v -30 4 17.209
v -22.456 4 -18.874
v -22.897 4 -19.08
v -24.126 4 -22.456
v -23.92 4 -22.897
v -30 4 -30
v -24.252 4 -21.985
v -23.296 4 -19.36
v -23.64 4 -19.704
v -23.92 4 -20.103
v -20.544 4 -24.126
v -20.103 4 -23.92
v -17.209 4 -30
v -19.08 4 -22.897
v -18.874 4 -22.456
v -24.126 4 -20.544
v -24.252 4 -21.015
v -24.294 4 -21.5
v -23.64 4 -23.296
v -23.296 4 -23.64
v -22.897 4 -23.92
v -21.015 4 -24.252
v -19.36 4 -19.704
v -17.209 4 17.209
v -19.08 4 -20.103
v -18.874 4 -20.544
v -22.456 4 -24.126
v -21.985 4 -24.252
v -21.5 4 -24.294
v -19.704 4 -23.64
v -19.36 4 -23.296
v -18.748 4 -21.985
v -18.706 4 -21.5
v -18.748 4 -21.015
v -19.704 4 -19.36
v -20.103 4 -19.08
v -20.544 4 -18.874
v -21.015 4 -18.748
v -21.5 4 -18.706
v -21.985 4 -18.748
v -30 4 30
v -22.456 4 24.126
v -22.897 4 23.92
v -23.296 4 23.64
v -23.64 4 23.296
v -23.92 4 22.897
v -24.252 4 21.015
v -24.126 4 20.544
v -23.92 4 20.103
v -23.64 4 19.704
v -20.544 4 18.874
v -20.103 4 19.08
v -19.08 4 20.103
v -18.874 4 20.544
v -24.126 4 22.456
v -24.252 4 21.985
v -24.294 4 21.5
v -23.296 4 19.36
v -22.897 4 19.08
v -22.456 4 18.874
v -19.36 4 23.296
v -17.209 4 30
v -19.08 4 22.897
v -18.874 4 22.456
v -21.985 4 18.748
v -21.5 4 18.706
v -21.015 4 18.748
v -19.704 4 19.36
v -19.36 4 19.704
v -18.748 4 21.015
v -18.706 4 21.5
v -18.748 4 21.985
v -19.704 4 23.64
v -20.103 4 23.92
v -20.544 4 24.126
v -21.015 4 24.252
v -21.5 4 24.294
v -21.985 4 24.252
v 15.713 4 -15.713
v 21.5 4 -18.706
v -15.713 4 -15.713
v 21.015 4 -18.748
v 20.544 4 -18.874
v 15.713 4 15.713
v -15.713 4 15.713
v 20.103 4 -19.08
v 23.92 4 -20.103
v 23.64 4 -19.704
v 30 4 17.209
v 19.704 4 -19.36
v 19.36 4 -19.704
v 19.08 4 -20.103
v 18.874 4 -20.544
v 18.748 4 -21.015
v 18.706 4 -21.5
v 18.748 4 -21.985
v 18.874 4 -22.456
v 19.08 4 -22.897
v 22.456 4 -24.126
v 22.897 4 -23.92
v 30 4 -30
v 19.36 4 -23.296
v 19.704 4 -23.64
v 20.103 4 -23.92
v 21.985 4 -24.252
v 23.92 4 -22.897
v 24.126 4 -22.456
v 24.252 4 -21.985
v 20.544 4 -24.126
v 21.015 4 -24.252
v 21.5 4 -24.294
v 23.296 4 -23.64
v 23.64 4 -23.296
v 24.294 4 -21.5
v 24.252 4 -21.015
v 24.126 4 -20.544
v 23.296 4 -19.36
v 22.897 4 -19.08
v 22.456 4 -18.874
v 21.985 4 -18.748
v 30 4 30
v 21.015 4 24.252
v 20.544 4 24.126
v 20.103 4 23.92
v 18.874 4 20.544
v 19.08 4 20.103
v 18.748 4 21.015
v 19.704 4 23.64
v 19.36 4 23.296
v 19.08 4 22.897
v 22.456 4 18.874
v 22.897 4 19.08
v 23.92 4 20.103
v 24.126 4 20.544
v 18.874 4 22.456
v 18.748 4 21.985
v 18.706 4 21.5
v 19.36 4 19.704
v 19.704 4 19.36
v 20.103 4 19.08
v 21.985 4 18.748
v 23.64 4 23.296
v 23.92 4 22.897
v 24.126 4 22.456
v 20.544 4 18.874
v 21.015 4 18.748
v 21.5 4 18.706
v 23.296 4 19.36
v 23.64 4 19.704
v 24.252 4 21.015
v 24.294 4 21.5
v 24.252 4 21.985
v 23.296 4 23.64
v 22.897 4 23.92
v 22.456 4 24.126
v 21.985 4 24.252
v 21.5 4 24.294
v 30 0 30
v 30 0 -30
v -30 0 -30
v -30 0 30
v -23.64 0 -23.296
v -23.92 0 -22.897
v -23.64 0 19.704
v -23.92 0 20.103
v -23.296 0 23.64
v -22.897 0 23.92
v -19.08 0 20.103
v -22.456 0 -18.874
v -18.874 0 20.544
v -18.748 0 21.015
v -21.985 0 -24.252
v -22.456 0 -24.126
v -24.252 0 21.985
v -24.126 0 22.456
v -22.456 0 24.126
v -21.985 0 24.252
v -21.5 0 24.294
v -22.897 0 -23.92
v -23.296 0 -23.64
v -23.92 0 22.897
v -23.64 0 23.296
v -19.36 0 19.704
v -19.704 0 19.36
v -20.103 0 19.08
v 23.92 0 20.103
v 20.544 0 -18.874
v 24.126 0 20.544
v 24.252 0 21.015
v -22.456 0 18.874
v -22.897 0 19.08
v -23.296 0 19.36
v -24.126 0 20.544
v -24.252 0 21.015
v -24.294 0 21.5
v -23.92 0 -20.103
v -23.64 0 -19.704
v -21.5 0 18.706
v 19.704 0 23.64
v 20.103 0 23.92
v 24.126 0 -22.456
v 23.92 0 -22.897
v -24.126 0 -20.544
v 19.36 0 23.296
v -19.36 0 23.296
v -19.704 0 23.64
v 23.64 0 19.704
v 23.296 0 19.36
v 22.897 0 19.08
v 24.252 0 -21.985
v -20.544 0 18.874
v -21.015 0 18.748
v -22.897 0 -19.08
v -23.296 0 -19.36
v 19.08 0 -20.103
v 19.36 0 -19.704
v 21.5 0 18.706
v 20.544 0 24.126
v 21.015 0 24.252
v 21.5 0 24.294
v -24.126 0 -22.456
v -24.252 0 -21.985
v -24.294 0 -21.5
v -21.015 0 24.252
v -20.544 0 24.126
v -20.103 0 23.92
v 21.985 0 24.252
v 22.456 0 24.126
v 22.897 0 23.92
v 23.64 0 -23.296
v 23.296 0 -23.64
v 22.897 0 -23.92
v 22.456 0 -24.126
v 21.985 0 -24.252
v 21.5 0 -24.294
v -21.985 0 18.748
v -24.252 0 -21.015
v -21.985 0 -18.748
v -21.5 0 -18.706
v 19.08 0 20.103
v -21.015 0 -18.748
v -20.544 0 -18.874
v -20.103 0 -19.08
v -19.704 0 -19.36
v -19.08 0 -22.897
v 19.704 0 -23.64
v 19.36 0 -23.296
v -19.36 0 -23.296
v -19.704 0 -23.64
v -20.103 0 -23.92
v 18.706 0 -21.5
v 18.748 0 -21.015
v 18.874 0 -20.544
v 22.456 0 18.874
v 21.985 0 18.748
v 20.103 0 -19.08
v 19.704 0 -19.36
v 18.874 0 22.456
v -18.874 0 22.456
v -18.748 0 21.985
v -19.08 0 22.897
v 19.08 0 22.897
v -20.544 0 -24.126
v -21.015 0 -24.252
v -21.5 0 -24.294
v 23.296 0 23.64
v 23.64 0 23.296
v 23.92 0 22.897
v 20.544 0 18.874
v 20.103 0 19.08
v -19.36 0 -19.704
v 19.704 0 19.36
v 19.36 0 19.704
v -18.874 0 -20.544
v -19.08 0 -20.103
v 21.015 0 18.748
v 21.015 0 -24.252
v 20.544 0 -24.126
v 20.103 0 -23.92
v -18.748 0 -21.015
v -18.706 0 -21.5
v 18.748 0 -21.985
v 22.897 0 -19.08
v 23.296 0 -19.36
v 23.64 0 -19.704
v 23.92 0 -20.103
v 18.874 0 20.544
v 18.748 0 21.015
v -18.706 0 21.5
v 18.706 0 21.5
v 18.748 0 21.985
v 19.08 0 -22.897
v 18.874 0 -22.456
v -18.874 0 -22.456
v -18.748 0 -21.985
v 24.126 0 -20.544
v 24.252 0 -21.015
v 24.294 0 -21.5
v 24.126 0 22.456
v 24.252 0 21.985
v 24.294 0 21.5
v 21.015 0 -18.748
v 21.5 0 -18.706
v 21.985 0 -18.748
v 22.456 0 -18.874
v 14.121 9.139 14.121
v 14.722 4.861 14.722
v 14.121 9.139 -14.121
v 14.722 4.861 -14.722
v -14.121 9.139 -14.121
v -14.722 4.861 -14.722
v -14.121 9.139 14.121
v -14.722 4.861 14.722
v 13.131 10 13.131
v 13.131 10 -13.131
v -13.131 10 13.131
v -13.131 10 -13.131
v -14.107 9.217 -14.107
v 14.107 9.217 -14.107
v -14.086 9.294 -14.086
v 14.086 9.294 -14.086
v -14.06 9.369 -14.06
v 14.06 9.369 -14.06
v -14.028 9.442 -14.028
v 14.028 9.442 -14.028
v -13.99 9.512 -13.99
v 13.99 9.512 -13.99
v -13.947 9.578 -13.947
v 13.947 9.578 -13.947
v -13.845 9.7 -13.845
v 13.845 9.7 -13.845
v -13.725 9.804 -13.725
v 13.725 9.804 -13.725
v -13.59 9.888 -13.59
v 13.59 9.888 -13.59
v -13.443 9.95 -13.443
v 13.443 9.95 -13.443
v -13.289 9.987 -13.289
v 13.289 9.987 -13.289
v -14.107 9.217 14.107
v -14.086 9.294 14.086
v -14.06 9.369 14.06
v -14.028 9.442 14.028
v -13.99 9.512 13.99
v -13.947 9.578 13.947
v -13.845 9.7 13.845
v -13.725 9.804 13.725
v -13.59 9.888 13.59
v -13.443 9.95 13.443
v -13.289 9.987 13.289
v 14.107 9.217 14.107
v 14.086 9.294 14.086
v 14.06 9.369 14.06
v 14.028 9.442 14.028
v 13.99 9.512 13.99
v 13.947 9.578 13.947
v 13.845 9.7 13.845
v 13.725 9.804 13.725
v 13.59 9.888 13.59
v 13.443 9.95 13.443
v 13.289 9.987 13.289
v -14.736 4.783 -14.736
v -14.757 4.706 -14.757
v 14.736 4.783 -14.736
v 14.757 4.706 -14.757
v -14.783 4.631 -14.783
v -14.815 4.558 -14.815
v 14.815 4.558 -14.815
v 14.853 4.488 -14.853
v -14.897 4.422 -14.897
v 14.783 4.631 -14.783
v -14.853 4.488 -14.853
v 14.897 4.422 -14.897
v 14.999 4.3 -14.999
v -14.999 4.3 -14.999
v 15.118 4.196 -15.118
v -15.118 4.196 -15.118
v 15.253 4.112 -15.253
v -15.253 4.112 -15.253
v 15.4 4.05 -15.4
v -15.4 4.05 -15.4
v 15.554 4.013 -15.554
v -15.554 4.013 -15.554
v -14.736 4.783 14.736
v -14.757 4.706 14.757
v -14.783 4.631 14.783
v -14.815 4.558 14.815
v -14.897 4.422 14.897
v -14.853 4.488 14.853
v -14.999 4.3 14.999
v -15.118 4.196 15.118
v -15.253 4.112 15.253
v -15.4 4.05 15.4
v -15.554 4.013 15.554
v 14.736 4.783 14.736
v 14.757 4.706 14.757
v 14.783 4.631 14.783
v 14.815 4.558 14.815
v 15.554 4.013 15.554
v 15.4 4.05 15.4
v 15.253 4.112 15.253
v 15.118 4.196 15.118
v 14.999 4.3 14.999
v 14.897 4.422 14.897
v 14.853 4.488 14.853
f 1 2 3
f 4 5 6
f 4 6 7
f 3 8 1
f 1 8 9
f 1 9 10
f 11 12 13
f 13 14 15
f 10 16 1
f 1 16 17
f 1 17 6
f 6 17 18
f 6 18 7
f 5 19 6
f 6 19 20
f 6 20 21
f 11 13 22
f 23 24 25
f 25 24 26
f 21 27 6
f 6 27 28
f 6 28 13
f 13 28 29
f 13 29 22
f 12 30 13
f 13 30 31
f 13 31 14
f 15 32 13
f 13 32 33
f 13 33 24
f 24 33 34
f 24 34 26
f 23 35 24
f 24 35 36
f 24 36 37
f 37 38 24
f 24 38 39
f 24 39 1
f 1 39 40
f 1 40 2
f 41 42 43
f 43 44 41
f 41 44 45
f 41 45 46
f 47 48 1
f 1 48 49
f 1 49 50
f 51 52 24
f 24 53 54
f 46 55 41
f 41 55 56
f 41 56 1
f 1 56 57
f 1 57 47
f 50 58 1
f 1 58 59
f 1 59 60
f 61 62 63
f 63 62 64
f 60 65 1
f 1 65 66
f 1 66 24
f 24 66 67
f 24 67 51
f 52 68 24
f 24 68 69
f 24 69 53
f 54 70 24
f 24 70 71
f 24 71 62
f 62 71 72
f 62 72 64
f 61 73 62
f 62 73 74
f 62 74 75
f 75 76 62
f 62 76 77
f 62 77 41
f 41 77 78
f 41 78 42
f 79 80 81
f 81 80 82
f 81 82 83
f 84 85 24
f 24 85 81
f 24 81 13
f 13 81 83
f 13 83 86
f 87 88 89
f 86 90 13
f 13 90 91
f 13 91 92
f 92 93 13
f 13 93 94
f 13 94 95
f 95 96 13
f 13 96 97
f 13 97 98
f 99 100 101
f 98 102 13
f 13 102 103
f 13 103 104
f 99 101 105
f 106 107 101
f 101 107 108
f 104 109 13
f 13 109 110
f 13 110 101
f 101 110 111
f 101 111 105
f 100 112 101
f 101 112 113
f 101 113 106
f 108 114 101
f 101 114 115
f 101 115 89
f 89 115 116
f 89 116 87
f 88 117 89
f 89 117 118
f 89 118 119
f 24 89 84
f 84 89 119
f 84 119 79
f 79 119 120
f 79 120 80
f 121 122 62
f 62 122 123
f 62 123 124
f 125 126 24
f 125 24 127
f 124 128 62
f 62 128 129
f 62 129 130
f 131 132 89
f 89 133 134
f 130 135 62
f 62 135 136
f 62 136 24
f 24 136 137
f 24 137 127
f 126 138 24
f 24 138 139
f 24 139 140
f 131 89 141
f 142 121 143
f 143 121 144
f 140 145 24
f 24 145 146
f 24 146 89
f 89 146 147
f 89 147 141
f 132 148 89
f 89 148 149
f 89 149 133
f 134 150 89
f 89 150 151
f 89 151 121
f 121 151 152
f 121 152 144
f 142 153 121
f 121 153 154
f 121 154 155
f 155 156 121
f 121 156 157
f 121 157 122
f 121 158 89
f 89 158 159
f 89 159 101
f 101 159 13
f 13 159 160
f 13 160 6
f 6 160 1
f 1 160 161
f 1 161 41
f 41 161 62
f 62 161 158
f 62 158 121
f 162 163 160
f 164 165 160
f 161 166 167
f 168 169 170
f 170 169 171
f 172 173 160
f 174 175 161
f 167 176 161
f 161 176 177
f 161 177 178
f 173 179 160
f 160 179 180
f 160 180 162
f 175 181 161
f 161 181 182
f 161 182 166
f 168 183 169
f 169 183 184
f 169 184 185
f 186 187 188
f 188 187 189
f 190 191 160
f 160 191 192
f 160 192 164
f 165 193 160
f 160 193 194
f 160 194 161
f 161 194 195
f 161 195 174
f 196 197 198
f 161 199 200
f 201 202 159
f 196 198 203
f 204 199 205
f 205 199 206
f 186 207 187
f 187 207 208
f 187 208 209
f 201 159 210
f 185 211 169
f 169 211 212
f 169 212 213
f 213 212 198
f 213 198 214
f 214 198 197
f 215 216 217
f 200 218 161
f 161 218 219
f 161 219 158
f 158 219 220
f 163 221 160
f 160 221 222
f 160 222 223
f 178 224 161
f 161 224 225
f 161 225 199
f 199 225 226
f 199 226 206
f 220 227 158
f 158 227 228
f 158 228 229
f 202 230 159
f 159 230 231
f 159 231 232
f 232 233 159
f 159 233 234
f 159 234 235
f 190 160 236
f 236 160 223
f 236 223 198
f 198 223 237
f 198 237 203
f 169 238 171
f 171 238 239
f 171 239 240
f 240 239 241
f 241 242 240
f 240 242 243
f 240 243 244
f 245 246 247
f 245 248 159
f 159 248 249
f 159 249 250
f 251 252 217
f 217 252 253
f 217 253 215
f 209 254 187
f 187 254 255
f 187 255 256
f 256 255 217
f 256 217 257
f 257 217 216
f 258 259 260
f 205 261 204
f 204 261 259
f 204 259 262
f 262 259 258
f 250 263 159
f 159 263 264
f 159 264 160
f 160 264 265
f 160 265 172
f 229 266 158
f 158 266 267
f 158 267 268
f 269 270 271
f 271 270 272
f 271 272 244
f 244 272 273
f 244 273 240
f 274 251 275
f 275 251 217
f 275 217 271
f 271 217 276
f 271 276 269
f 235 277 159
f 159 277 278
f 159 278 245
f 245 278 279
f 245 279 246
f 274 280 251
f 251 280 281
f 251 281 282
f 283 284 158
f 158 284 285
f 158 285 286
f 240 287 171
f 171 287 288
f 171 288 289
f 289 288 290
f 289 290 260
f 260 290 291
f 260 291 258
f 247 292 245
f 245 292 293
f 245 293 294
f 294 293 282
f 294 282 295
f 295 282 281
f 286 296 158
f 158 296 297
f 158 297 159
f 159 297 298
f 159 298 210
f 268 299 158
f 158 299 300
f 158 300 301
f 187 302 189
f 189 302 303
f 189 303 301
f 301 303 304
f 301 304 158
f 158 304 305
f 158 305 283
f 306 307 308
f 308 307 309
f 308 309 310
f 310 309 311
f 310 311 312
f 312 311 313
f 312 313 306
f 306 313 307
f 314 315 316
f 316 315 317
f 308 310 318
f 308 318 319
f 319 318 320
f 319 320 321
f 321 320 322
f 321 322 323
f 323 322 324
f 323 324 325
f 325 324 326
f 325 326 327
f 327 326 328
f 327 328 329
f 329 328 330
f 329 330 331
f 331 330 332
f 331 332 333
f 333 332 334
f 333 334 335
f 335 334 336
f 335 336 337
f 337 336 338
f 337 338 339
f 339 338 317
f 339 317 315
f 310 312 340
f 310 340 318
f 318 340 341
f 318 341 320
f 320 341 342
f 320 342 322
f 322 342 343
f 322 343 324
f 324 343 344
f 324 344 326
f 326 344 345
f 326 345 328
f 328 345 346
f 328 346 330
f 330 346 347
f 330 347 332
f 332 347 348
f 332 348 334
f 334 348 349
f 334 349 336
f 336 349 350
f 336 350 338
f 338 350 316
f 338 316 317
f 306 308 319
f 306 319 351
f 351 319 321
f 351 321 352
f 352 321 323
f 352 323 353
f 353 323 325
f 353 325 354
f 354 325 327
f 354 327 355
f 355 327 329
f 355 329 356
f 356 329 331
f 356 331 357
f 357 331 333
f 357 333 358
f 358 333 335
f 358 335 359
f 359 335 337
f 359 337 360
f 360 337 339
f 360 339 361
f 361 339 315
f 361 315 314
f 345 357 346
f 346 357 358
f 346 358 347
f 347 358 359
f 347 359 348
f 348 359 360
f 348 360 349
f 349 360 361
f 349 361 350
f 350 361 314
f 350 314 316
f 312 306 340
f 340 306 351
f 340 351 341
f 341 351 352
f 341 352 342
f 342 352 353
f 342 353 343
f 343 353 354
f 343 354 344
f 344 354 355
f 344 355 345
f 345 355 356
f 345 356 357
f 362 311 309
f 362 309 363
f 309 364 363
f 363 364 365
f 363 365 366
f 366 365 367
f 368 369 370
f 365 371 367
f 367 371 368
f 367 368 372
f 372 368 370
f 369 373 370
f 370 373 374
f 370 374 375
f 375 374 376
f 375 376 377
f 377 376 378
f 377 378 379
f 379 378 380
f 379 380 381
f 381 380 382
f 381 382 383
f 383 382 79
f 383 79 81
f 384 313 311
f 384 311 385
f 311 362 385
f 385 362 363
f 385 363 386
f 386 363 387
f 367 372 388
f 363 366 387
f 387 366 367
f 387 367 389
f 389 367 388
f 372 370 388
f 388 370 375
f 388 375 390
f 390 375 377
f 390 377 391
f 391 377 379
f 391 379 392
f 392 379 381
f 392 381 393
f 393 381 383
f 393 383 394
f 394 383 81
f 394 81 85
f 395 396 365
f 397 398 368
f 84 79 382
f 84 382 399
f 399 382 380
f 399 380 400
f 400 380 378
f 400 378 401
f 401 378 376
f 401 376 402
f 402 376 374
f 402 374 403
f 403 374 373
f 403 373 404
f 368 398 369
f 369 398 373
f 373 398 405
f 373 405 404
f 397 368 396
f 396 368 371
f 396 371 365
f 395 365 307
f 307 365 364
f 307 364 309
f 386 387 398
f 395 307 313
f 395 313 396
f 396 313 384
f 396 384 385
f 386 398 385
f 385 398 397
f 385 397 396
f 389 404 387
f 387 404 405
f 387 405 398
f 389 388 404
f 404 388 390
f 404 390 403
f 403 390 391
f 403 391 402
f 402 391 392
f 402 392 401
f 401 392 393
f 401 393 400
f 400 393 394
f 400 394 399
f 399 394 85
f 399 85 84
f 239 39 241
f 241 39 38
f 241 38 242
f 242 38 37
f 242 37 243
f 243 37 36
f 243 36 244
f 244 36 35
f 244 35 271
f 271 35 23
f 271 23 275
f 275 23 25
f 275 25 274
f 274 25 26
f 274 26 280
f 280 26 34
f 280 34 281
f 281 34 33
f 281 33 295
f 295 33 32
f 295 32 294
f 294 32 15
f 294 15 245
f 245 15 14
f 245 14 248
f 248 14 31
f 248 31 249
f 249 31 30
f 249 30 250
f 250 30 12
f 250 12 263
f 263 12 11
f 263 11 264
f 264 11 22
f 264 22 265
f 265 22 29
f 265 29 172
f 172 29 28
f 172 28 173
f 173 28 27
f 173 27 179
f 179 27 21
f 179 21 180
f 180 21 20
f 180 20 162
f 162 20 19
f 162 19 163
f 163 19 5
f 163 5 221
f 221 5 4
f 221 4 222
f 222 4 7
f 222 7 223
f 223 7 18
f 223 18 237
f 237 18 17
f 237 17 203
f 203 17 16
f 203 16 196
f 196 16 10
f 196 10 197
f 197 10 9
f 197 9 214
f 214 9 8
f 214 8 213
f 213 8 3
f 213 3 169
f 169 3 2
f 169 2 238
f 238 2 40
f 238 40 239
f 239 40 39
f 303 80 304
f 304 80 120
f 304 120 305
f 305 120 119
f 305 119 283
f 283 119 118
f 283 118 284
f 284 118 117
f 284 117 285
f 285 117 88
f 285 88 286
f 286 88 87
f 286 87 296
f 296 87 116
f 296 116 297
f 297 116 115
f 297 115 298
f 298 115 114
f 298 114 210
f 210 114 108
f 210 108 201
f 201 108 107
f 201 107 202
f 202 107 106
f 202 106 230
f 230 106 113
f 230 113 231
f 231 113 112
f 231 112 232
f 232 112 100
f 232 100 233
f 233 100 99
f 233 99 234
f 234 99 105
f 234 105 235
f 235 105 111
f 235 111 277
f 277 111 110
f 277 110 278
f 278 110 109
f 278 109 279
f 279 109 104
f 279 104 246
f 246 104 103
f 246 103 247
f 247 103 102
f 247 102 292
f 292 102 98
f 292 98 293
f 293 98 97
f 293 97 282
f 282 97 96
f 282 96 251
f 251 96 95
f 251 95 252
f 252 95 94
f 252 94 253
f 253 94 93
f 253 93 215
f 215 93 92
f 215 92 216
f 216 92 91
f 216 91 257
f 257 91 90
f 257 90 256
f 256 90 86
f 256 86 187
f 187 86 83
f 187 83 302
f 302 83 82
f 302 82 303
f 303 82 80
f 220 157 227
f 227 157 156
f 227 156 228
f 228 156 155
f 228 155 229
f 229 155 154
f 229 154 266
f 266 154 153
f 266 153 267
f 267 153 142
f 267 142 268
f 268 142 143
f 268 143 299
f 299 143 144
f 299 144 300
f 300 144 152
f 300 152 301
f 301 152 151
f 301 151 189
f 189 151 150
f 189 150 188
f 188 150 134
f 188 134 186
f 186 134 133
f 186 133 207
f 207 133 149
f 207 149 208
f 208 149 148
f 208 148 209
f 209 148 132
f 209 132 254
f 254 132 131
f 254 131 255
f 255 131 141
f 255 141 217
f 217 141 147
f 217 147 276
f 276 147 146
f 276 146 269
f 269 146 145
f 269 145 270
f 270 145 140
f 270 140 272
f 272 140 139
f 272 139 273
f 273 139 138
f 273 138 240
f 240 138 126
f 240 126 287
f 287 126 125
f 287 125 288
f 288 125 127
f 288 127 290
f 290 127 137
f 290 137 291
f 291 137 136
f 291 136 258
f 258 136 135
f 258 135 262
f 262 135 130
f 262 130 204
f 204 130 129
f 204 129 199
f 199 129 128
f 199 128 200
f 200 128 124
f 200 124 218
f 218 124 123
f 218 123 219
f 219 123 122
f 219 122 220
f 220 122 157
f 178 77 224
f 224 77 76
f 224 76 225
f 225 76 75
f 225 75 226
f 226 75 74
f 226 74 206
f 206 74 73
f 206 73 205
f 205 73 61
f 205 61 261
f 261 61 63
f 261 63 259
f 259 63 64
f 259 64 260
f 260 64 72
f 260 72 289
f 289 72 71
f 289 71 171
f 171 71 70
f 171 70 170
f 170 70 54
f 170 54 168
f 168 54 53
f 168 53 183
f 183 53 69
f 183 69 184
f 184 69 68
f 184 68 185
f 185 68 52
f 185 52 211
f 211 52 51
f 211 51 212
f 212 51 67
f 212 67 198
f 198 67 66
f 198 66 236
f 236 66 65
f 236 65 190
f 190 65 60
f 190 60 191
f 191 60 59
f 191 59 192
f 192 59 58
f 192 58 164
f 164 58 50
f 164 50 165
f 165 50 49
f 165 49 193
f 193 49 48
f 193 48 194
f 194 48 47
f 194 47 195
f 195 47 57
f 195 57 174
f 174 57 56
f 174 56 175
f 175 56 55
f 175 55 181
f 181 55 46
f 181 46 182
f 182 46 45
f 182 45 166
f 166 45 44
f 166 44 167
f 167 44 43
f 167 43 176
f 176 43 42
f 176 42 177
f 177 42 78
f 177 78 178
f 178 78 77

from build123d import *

# Parameters (mm, degrees)
SKETCH1_W           = 60
SKETCH1_H           = 60
BOSS_EXTRUDE1_DEPTH = 4
SKETCH2_W           = 28
SKETCH2_H           = 28
BOSS_EXTRUDE2_DEPTH = 6
DRAFT1_ANGLE        = 8
FILLET1_R           = 1
SKETCH3_R           = 2.794
CUT_EXTRUDE1_DEPTH  = 43.848570571


with BuildPart() as part:
    # Sketch1 → Boss-Extrude1 (new body)
    with BuildSketch(Plane(origin=(0, 0, 0), x_dir=(1, 0, 0), z_dir=(0, 1, 0))):
        Rectangle(SKETCH1_W, SKETCH1_H)
    extrude(amount=BOSS_EXTRUDE1_DEPTH)

    # Sketch2 → Boss-Extrude2 (add)
    with BuildSketch(Plane(origin=(0, 4, 0), x_dir=(1, 0, 0), z_dir=(0, 1, 0))):
        Rectangle(SKETCH2_W, SKETCH2_H)
    extrude(amount=BOSS_EXTRUDE2_DEPTH)

    # Draft1
    draft1_faces = [part.faces().sort_by_distance(p)[0] for p in [
        (-14, 7, 0),
        (0, 7, -14),
        (14, 7, 0),
        (0, 7, 14),
    ]]
    draft(draft1_faces, Plane.ZX.offset(10), DRAFT1_ANGLE)

    # Fillet1
    fillet1_edges = [part.edges().sort_by_distance(p)[0] for p in [
        (14.843245008, 4, 0),
        (0, 4, -14.843245008),
        (-14.843245008, 4, 0),
        (0, 4, 14.843245008),
        (14, 10, 0),
        (0, 10, -14),
        (-14, 10, 0),
        (0, 10, 14),
    ]]
    fillet(fillet1_edges, radius=FILLET1_R)

    # Sketch3 → Cut-Extrude1 (cut, through all)
    with BuildSketch(Plane(origin=(0, 4, 0), x_dir=(1, 0, 0), z_dir=(0, 1, 0))):
        with Locations(Location((-21.5, 21.5, 0), (0, 0, 270))):
            Circle(SKETCH3_R)
        with Locations(Location((21.5, 21.5, 0), (0, 0, 90))):
            Circle(SKETCH3_R)
        with Locations(Location((21.5, -21.5, 0), (0, 0, 270))):
            Circle(SKETCH3_R)
        with Locations(Location((-21.5, -21.5, 0), (0, 0, 90))):
            Circle(SKETCH3_R)
    extrude(amount=-CUT_EXTRUDE1_DEPTH, mode=Mode.SUBTRACT)


solid = part.part
